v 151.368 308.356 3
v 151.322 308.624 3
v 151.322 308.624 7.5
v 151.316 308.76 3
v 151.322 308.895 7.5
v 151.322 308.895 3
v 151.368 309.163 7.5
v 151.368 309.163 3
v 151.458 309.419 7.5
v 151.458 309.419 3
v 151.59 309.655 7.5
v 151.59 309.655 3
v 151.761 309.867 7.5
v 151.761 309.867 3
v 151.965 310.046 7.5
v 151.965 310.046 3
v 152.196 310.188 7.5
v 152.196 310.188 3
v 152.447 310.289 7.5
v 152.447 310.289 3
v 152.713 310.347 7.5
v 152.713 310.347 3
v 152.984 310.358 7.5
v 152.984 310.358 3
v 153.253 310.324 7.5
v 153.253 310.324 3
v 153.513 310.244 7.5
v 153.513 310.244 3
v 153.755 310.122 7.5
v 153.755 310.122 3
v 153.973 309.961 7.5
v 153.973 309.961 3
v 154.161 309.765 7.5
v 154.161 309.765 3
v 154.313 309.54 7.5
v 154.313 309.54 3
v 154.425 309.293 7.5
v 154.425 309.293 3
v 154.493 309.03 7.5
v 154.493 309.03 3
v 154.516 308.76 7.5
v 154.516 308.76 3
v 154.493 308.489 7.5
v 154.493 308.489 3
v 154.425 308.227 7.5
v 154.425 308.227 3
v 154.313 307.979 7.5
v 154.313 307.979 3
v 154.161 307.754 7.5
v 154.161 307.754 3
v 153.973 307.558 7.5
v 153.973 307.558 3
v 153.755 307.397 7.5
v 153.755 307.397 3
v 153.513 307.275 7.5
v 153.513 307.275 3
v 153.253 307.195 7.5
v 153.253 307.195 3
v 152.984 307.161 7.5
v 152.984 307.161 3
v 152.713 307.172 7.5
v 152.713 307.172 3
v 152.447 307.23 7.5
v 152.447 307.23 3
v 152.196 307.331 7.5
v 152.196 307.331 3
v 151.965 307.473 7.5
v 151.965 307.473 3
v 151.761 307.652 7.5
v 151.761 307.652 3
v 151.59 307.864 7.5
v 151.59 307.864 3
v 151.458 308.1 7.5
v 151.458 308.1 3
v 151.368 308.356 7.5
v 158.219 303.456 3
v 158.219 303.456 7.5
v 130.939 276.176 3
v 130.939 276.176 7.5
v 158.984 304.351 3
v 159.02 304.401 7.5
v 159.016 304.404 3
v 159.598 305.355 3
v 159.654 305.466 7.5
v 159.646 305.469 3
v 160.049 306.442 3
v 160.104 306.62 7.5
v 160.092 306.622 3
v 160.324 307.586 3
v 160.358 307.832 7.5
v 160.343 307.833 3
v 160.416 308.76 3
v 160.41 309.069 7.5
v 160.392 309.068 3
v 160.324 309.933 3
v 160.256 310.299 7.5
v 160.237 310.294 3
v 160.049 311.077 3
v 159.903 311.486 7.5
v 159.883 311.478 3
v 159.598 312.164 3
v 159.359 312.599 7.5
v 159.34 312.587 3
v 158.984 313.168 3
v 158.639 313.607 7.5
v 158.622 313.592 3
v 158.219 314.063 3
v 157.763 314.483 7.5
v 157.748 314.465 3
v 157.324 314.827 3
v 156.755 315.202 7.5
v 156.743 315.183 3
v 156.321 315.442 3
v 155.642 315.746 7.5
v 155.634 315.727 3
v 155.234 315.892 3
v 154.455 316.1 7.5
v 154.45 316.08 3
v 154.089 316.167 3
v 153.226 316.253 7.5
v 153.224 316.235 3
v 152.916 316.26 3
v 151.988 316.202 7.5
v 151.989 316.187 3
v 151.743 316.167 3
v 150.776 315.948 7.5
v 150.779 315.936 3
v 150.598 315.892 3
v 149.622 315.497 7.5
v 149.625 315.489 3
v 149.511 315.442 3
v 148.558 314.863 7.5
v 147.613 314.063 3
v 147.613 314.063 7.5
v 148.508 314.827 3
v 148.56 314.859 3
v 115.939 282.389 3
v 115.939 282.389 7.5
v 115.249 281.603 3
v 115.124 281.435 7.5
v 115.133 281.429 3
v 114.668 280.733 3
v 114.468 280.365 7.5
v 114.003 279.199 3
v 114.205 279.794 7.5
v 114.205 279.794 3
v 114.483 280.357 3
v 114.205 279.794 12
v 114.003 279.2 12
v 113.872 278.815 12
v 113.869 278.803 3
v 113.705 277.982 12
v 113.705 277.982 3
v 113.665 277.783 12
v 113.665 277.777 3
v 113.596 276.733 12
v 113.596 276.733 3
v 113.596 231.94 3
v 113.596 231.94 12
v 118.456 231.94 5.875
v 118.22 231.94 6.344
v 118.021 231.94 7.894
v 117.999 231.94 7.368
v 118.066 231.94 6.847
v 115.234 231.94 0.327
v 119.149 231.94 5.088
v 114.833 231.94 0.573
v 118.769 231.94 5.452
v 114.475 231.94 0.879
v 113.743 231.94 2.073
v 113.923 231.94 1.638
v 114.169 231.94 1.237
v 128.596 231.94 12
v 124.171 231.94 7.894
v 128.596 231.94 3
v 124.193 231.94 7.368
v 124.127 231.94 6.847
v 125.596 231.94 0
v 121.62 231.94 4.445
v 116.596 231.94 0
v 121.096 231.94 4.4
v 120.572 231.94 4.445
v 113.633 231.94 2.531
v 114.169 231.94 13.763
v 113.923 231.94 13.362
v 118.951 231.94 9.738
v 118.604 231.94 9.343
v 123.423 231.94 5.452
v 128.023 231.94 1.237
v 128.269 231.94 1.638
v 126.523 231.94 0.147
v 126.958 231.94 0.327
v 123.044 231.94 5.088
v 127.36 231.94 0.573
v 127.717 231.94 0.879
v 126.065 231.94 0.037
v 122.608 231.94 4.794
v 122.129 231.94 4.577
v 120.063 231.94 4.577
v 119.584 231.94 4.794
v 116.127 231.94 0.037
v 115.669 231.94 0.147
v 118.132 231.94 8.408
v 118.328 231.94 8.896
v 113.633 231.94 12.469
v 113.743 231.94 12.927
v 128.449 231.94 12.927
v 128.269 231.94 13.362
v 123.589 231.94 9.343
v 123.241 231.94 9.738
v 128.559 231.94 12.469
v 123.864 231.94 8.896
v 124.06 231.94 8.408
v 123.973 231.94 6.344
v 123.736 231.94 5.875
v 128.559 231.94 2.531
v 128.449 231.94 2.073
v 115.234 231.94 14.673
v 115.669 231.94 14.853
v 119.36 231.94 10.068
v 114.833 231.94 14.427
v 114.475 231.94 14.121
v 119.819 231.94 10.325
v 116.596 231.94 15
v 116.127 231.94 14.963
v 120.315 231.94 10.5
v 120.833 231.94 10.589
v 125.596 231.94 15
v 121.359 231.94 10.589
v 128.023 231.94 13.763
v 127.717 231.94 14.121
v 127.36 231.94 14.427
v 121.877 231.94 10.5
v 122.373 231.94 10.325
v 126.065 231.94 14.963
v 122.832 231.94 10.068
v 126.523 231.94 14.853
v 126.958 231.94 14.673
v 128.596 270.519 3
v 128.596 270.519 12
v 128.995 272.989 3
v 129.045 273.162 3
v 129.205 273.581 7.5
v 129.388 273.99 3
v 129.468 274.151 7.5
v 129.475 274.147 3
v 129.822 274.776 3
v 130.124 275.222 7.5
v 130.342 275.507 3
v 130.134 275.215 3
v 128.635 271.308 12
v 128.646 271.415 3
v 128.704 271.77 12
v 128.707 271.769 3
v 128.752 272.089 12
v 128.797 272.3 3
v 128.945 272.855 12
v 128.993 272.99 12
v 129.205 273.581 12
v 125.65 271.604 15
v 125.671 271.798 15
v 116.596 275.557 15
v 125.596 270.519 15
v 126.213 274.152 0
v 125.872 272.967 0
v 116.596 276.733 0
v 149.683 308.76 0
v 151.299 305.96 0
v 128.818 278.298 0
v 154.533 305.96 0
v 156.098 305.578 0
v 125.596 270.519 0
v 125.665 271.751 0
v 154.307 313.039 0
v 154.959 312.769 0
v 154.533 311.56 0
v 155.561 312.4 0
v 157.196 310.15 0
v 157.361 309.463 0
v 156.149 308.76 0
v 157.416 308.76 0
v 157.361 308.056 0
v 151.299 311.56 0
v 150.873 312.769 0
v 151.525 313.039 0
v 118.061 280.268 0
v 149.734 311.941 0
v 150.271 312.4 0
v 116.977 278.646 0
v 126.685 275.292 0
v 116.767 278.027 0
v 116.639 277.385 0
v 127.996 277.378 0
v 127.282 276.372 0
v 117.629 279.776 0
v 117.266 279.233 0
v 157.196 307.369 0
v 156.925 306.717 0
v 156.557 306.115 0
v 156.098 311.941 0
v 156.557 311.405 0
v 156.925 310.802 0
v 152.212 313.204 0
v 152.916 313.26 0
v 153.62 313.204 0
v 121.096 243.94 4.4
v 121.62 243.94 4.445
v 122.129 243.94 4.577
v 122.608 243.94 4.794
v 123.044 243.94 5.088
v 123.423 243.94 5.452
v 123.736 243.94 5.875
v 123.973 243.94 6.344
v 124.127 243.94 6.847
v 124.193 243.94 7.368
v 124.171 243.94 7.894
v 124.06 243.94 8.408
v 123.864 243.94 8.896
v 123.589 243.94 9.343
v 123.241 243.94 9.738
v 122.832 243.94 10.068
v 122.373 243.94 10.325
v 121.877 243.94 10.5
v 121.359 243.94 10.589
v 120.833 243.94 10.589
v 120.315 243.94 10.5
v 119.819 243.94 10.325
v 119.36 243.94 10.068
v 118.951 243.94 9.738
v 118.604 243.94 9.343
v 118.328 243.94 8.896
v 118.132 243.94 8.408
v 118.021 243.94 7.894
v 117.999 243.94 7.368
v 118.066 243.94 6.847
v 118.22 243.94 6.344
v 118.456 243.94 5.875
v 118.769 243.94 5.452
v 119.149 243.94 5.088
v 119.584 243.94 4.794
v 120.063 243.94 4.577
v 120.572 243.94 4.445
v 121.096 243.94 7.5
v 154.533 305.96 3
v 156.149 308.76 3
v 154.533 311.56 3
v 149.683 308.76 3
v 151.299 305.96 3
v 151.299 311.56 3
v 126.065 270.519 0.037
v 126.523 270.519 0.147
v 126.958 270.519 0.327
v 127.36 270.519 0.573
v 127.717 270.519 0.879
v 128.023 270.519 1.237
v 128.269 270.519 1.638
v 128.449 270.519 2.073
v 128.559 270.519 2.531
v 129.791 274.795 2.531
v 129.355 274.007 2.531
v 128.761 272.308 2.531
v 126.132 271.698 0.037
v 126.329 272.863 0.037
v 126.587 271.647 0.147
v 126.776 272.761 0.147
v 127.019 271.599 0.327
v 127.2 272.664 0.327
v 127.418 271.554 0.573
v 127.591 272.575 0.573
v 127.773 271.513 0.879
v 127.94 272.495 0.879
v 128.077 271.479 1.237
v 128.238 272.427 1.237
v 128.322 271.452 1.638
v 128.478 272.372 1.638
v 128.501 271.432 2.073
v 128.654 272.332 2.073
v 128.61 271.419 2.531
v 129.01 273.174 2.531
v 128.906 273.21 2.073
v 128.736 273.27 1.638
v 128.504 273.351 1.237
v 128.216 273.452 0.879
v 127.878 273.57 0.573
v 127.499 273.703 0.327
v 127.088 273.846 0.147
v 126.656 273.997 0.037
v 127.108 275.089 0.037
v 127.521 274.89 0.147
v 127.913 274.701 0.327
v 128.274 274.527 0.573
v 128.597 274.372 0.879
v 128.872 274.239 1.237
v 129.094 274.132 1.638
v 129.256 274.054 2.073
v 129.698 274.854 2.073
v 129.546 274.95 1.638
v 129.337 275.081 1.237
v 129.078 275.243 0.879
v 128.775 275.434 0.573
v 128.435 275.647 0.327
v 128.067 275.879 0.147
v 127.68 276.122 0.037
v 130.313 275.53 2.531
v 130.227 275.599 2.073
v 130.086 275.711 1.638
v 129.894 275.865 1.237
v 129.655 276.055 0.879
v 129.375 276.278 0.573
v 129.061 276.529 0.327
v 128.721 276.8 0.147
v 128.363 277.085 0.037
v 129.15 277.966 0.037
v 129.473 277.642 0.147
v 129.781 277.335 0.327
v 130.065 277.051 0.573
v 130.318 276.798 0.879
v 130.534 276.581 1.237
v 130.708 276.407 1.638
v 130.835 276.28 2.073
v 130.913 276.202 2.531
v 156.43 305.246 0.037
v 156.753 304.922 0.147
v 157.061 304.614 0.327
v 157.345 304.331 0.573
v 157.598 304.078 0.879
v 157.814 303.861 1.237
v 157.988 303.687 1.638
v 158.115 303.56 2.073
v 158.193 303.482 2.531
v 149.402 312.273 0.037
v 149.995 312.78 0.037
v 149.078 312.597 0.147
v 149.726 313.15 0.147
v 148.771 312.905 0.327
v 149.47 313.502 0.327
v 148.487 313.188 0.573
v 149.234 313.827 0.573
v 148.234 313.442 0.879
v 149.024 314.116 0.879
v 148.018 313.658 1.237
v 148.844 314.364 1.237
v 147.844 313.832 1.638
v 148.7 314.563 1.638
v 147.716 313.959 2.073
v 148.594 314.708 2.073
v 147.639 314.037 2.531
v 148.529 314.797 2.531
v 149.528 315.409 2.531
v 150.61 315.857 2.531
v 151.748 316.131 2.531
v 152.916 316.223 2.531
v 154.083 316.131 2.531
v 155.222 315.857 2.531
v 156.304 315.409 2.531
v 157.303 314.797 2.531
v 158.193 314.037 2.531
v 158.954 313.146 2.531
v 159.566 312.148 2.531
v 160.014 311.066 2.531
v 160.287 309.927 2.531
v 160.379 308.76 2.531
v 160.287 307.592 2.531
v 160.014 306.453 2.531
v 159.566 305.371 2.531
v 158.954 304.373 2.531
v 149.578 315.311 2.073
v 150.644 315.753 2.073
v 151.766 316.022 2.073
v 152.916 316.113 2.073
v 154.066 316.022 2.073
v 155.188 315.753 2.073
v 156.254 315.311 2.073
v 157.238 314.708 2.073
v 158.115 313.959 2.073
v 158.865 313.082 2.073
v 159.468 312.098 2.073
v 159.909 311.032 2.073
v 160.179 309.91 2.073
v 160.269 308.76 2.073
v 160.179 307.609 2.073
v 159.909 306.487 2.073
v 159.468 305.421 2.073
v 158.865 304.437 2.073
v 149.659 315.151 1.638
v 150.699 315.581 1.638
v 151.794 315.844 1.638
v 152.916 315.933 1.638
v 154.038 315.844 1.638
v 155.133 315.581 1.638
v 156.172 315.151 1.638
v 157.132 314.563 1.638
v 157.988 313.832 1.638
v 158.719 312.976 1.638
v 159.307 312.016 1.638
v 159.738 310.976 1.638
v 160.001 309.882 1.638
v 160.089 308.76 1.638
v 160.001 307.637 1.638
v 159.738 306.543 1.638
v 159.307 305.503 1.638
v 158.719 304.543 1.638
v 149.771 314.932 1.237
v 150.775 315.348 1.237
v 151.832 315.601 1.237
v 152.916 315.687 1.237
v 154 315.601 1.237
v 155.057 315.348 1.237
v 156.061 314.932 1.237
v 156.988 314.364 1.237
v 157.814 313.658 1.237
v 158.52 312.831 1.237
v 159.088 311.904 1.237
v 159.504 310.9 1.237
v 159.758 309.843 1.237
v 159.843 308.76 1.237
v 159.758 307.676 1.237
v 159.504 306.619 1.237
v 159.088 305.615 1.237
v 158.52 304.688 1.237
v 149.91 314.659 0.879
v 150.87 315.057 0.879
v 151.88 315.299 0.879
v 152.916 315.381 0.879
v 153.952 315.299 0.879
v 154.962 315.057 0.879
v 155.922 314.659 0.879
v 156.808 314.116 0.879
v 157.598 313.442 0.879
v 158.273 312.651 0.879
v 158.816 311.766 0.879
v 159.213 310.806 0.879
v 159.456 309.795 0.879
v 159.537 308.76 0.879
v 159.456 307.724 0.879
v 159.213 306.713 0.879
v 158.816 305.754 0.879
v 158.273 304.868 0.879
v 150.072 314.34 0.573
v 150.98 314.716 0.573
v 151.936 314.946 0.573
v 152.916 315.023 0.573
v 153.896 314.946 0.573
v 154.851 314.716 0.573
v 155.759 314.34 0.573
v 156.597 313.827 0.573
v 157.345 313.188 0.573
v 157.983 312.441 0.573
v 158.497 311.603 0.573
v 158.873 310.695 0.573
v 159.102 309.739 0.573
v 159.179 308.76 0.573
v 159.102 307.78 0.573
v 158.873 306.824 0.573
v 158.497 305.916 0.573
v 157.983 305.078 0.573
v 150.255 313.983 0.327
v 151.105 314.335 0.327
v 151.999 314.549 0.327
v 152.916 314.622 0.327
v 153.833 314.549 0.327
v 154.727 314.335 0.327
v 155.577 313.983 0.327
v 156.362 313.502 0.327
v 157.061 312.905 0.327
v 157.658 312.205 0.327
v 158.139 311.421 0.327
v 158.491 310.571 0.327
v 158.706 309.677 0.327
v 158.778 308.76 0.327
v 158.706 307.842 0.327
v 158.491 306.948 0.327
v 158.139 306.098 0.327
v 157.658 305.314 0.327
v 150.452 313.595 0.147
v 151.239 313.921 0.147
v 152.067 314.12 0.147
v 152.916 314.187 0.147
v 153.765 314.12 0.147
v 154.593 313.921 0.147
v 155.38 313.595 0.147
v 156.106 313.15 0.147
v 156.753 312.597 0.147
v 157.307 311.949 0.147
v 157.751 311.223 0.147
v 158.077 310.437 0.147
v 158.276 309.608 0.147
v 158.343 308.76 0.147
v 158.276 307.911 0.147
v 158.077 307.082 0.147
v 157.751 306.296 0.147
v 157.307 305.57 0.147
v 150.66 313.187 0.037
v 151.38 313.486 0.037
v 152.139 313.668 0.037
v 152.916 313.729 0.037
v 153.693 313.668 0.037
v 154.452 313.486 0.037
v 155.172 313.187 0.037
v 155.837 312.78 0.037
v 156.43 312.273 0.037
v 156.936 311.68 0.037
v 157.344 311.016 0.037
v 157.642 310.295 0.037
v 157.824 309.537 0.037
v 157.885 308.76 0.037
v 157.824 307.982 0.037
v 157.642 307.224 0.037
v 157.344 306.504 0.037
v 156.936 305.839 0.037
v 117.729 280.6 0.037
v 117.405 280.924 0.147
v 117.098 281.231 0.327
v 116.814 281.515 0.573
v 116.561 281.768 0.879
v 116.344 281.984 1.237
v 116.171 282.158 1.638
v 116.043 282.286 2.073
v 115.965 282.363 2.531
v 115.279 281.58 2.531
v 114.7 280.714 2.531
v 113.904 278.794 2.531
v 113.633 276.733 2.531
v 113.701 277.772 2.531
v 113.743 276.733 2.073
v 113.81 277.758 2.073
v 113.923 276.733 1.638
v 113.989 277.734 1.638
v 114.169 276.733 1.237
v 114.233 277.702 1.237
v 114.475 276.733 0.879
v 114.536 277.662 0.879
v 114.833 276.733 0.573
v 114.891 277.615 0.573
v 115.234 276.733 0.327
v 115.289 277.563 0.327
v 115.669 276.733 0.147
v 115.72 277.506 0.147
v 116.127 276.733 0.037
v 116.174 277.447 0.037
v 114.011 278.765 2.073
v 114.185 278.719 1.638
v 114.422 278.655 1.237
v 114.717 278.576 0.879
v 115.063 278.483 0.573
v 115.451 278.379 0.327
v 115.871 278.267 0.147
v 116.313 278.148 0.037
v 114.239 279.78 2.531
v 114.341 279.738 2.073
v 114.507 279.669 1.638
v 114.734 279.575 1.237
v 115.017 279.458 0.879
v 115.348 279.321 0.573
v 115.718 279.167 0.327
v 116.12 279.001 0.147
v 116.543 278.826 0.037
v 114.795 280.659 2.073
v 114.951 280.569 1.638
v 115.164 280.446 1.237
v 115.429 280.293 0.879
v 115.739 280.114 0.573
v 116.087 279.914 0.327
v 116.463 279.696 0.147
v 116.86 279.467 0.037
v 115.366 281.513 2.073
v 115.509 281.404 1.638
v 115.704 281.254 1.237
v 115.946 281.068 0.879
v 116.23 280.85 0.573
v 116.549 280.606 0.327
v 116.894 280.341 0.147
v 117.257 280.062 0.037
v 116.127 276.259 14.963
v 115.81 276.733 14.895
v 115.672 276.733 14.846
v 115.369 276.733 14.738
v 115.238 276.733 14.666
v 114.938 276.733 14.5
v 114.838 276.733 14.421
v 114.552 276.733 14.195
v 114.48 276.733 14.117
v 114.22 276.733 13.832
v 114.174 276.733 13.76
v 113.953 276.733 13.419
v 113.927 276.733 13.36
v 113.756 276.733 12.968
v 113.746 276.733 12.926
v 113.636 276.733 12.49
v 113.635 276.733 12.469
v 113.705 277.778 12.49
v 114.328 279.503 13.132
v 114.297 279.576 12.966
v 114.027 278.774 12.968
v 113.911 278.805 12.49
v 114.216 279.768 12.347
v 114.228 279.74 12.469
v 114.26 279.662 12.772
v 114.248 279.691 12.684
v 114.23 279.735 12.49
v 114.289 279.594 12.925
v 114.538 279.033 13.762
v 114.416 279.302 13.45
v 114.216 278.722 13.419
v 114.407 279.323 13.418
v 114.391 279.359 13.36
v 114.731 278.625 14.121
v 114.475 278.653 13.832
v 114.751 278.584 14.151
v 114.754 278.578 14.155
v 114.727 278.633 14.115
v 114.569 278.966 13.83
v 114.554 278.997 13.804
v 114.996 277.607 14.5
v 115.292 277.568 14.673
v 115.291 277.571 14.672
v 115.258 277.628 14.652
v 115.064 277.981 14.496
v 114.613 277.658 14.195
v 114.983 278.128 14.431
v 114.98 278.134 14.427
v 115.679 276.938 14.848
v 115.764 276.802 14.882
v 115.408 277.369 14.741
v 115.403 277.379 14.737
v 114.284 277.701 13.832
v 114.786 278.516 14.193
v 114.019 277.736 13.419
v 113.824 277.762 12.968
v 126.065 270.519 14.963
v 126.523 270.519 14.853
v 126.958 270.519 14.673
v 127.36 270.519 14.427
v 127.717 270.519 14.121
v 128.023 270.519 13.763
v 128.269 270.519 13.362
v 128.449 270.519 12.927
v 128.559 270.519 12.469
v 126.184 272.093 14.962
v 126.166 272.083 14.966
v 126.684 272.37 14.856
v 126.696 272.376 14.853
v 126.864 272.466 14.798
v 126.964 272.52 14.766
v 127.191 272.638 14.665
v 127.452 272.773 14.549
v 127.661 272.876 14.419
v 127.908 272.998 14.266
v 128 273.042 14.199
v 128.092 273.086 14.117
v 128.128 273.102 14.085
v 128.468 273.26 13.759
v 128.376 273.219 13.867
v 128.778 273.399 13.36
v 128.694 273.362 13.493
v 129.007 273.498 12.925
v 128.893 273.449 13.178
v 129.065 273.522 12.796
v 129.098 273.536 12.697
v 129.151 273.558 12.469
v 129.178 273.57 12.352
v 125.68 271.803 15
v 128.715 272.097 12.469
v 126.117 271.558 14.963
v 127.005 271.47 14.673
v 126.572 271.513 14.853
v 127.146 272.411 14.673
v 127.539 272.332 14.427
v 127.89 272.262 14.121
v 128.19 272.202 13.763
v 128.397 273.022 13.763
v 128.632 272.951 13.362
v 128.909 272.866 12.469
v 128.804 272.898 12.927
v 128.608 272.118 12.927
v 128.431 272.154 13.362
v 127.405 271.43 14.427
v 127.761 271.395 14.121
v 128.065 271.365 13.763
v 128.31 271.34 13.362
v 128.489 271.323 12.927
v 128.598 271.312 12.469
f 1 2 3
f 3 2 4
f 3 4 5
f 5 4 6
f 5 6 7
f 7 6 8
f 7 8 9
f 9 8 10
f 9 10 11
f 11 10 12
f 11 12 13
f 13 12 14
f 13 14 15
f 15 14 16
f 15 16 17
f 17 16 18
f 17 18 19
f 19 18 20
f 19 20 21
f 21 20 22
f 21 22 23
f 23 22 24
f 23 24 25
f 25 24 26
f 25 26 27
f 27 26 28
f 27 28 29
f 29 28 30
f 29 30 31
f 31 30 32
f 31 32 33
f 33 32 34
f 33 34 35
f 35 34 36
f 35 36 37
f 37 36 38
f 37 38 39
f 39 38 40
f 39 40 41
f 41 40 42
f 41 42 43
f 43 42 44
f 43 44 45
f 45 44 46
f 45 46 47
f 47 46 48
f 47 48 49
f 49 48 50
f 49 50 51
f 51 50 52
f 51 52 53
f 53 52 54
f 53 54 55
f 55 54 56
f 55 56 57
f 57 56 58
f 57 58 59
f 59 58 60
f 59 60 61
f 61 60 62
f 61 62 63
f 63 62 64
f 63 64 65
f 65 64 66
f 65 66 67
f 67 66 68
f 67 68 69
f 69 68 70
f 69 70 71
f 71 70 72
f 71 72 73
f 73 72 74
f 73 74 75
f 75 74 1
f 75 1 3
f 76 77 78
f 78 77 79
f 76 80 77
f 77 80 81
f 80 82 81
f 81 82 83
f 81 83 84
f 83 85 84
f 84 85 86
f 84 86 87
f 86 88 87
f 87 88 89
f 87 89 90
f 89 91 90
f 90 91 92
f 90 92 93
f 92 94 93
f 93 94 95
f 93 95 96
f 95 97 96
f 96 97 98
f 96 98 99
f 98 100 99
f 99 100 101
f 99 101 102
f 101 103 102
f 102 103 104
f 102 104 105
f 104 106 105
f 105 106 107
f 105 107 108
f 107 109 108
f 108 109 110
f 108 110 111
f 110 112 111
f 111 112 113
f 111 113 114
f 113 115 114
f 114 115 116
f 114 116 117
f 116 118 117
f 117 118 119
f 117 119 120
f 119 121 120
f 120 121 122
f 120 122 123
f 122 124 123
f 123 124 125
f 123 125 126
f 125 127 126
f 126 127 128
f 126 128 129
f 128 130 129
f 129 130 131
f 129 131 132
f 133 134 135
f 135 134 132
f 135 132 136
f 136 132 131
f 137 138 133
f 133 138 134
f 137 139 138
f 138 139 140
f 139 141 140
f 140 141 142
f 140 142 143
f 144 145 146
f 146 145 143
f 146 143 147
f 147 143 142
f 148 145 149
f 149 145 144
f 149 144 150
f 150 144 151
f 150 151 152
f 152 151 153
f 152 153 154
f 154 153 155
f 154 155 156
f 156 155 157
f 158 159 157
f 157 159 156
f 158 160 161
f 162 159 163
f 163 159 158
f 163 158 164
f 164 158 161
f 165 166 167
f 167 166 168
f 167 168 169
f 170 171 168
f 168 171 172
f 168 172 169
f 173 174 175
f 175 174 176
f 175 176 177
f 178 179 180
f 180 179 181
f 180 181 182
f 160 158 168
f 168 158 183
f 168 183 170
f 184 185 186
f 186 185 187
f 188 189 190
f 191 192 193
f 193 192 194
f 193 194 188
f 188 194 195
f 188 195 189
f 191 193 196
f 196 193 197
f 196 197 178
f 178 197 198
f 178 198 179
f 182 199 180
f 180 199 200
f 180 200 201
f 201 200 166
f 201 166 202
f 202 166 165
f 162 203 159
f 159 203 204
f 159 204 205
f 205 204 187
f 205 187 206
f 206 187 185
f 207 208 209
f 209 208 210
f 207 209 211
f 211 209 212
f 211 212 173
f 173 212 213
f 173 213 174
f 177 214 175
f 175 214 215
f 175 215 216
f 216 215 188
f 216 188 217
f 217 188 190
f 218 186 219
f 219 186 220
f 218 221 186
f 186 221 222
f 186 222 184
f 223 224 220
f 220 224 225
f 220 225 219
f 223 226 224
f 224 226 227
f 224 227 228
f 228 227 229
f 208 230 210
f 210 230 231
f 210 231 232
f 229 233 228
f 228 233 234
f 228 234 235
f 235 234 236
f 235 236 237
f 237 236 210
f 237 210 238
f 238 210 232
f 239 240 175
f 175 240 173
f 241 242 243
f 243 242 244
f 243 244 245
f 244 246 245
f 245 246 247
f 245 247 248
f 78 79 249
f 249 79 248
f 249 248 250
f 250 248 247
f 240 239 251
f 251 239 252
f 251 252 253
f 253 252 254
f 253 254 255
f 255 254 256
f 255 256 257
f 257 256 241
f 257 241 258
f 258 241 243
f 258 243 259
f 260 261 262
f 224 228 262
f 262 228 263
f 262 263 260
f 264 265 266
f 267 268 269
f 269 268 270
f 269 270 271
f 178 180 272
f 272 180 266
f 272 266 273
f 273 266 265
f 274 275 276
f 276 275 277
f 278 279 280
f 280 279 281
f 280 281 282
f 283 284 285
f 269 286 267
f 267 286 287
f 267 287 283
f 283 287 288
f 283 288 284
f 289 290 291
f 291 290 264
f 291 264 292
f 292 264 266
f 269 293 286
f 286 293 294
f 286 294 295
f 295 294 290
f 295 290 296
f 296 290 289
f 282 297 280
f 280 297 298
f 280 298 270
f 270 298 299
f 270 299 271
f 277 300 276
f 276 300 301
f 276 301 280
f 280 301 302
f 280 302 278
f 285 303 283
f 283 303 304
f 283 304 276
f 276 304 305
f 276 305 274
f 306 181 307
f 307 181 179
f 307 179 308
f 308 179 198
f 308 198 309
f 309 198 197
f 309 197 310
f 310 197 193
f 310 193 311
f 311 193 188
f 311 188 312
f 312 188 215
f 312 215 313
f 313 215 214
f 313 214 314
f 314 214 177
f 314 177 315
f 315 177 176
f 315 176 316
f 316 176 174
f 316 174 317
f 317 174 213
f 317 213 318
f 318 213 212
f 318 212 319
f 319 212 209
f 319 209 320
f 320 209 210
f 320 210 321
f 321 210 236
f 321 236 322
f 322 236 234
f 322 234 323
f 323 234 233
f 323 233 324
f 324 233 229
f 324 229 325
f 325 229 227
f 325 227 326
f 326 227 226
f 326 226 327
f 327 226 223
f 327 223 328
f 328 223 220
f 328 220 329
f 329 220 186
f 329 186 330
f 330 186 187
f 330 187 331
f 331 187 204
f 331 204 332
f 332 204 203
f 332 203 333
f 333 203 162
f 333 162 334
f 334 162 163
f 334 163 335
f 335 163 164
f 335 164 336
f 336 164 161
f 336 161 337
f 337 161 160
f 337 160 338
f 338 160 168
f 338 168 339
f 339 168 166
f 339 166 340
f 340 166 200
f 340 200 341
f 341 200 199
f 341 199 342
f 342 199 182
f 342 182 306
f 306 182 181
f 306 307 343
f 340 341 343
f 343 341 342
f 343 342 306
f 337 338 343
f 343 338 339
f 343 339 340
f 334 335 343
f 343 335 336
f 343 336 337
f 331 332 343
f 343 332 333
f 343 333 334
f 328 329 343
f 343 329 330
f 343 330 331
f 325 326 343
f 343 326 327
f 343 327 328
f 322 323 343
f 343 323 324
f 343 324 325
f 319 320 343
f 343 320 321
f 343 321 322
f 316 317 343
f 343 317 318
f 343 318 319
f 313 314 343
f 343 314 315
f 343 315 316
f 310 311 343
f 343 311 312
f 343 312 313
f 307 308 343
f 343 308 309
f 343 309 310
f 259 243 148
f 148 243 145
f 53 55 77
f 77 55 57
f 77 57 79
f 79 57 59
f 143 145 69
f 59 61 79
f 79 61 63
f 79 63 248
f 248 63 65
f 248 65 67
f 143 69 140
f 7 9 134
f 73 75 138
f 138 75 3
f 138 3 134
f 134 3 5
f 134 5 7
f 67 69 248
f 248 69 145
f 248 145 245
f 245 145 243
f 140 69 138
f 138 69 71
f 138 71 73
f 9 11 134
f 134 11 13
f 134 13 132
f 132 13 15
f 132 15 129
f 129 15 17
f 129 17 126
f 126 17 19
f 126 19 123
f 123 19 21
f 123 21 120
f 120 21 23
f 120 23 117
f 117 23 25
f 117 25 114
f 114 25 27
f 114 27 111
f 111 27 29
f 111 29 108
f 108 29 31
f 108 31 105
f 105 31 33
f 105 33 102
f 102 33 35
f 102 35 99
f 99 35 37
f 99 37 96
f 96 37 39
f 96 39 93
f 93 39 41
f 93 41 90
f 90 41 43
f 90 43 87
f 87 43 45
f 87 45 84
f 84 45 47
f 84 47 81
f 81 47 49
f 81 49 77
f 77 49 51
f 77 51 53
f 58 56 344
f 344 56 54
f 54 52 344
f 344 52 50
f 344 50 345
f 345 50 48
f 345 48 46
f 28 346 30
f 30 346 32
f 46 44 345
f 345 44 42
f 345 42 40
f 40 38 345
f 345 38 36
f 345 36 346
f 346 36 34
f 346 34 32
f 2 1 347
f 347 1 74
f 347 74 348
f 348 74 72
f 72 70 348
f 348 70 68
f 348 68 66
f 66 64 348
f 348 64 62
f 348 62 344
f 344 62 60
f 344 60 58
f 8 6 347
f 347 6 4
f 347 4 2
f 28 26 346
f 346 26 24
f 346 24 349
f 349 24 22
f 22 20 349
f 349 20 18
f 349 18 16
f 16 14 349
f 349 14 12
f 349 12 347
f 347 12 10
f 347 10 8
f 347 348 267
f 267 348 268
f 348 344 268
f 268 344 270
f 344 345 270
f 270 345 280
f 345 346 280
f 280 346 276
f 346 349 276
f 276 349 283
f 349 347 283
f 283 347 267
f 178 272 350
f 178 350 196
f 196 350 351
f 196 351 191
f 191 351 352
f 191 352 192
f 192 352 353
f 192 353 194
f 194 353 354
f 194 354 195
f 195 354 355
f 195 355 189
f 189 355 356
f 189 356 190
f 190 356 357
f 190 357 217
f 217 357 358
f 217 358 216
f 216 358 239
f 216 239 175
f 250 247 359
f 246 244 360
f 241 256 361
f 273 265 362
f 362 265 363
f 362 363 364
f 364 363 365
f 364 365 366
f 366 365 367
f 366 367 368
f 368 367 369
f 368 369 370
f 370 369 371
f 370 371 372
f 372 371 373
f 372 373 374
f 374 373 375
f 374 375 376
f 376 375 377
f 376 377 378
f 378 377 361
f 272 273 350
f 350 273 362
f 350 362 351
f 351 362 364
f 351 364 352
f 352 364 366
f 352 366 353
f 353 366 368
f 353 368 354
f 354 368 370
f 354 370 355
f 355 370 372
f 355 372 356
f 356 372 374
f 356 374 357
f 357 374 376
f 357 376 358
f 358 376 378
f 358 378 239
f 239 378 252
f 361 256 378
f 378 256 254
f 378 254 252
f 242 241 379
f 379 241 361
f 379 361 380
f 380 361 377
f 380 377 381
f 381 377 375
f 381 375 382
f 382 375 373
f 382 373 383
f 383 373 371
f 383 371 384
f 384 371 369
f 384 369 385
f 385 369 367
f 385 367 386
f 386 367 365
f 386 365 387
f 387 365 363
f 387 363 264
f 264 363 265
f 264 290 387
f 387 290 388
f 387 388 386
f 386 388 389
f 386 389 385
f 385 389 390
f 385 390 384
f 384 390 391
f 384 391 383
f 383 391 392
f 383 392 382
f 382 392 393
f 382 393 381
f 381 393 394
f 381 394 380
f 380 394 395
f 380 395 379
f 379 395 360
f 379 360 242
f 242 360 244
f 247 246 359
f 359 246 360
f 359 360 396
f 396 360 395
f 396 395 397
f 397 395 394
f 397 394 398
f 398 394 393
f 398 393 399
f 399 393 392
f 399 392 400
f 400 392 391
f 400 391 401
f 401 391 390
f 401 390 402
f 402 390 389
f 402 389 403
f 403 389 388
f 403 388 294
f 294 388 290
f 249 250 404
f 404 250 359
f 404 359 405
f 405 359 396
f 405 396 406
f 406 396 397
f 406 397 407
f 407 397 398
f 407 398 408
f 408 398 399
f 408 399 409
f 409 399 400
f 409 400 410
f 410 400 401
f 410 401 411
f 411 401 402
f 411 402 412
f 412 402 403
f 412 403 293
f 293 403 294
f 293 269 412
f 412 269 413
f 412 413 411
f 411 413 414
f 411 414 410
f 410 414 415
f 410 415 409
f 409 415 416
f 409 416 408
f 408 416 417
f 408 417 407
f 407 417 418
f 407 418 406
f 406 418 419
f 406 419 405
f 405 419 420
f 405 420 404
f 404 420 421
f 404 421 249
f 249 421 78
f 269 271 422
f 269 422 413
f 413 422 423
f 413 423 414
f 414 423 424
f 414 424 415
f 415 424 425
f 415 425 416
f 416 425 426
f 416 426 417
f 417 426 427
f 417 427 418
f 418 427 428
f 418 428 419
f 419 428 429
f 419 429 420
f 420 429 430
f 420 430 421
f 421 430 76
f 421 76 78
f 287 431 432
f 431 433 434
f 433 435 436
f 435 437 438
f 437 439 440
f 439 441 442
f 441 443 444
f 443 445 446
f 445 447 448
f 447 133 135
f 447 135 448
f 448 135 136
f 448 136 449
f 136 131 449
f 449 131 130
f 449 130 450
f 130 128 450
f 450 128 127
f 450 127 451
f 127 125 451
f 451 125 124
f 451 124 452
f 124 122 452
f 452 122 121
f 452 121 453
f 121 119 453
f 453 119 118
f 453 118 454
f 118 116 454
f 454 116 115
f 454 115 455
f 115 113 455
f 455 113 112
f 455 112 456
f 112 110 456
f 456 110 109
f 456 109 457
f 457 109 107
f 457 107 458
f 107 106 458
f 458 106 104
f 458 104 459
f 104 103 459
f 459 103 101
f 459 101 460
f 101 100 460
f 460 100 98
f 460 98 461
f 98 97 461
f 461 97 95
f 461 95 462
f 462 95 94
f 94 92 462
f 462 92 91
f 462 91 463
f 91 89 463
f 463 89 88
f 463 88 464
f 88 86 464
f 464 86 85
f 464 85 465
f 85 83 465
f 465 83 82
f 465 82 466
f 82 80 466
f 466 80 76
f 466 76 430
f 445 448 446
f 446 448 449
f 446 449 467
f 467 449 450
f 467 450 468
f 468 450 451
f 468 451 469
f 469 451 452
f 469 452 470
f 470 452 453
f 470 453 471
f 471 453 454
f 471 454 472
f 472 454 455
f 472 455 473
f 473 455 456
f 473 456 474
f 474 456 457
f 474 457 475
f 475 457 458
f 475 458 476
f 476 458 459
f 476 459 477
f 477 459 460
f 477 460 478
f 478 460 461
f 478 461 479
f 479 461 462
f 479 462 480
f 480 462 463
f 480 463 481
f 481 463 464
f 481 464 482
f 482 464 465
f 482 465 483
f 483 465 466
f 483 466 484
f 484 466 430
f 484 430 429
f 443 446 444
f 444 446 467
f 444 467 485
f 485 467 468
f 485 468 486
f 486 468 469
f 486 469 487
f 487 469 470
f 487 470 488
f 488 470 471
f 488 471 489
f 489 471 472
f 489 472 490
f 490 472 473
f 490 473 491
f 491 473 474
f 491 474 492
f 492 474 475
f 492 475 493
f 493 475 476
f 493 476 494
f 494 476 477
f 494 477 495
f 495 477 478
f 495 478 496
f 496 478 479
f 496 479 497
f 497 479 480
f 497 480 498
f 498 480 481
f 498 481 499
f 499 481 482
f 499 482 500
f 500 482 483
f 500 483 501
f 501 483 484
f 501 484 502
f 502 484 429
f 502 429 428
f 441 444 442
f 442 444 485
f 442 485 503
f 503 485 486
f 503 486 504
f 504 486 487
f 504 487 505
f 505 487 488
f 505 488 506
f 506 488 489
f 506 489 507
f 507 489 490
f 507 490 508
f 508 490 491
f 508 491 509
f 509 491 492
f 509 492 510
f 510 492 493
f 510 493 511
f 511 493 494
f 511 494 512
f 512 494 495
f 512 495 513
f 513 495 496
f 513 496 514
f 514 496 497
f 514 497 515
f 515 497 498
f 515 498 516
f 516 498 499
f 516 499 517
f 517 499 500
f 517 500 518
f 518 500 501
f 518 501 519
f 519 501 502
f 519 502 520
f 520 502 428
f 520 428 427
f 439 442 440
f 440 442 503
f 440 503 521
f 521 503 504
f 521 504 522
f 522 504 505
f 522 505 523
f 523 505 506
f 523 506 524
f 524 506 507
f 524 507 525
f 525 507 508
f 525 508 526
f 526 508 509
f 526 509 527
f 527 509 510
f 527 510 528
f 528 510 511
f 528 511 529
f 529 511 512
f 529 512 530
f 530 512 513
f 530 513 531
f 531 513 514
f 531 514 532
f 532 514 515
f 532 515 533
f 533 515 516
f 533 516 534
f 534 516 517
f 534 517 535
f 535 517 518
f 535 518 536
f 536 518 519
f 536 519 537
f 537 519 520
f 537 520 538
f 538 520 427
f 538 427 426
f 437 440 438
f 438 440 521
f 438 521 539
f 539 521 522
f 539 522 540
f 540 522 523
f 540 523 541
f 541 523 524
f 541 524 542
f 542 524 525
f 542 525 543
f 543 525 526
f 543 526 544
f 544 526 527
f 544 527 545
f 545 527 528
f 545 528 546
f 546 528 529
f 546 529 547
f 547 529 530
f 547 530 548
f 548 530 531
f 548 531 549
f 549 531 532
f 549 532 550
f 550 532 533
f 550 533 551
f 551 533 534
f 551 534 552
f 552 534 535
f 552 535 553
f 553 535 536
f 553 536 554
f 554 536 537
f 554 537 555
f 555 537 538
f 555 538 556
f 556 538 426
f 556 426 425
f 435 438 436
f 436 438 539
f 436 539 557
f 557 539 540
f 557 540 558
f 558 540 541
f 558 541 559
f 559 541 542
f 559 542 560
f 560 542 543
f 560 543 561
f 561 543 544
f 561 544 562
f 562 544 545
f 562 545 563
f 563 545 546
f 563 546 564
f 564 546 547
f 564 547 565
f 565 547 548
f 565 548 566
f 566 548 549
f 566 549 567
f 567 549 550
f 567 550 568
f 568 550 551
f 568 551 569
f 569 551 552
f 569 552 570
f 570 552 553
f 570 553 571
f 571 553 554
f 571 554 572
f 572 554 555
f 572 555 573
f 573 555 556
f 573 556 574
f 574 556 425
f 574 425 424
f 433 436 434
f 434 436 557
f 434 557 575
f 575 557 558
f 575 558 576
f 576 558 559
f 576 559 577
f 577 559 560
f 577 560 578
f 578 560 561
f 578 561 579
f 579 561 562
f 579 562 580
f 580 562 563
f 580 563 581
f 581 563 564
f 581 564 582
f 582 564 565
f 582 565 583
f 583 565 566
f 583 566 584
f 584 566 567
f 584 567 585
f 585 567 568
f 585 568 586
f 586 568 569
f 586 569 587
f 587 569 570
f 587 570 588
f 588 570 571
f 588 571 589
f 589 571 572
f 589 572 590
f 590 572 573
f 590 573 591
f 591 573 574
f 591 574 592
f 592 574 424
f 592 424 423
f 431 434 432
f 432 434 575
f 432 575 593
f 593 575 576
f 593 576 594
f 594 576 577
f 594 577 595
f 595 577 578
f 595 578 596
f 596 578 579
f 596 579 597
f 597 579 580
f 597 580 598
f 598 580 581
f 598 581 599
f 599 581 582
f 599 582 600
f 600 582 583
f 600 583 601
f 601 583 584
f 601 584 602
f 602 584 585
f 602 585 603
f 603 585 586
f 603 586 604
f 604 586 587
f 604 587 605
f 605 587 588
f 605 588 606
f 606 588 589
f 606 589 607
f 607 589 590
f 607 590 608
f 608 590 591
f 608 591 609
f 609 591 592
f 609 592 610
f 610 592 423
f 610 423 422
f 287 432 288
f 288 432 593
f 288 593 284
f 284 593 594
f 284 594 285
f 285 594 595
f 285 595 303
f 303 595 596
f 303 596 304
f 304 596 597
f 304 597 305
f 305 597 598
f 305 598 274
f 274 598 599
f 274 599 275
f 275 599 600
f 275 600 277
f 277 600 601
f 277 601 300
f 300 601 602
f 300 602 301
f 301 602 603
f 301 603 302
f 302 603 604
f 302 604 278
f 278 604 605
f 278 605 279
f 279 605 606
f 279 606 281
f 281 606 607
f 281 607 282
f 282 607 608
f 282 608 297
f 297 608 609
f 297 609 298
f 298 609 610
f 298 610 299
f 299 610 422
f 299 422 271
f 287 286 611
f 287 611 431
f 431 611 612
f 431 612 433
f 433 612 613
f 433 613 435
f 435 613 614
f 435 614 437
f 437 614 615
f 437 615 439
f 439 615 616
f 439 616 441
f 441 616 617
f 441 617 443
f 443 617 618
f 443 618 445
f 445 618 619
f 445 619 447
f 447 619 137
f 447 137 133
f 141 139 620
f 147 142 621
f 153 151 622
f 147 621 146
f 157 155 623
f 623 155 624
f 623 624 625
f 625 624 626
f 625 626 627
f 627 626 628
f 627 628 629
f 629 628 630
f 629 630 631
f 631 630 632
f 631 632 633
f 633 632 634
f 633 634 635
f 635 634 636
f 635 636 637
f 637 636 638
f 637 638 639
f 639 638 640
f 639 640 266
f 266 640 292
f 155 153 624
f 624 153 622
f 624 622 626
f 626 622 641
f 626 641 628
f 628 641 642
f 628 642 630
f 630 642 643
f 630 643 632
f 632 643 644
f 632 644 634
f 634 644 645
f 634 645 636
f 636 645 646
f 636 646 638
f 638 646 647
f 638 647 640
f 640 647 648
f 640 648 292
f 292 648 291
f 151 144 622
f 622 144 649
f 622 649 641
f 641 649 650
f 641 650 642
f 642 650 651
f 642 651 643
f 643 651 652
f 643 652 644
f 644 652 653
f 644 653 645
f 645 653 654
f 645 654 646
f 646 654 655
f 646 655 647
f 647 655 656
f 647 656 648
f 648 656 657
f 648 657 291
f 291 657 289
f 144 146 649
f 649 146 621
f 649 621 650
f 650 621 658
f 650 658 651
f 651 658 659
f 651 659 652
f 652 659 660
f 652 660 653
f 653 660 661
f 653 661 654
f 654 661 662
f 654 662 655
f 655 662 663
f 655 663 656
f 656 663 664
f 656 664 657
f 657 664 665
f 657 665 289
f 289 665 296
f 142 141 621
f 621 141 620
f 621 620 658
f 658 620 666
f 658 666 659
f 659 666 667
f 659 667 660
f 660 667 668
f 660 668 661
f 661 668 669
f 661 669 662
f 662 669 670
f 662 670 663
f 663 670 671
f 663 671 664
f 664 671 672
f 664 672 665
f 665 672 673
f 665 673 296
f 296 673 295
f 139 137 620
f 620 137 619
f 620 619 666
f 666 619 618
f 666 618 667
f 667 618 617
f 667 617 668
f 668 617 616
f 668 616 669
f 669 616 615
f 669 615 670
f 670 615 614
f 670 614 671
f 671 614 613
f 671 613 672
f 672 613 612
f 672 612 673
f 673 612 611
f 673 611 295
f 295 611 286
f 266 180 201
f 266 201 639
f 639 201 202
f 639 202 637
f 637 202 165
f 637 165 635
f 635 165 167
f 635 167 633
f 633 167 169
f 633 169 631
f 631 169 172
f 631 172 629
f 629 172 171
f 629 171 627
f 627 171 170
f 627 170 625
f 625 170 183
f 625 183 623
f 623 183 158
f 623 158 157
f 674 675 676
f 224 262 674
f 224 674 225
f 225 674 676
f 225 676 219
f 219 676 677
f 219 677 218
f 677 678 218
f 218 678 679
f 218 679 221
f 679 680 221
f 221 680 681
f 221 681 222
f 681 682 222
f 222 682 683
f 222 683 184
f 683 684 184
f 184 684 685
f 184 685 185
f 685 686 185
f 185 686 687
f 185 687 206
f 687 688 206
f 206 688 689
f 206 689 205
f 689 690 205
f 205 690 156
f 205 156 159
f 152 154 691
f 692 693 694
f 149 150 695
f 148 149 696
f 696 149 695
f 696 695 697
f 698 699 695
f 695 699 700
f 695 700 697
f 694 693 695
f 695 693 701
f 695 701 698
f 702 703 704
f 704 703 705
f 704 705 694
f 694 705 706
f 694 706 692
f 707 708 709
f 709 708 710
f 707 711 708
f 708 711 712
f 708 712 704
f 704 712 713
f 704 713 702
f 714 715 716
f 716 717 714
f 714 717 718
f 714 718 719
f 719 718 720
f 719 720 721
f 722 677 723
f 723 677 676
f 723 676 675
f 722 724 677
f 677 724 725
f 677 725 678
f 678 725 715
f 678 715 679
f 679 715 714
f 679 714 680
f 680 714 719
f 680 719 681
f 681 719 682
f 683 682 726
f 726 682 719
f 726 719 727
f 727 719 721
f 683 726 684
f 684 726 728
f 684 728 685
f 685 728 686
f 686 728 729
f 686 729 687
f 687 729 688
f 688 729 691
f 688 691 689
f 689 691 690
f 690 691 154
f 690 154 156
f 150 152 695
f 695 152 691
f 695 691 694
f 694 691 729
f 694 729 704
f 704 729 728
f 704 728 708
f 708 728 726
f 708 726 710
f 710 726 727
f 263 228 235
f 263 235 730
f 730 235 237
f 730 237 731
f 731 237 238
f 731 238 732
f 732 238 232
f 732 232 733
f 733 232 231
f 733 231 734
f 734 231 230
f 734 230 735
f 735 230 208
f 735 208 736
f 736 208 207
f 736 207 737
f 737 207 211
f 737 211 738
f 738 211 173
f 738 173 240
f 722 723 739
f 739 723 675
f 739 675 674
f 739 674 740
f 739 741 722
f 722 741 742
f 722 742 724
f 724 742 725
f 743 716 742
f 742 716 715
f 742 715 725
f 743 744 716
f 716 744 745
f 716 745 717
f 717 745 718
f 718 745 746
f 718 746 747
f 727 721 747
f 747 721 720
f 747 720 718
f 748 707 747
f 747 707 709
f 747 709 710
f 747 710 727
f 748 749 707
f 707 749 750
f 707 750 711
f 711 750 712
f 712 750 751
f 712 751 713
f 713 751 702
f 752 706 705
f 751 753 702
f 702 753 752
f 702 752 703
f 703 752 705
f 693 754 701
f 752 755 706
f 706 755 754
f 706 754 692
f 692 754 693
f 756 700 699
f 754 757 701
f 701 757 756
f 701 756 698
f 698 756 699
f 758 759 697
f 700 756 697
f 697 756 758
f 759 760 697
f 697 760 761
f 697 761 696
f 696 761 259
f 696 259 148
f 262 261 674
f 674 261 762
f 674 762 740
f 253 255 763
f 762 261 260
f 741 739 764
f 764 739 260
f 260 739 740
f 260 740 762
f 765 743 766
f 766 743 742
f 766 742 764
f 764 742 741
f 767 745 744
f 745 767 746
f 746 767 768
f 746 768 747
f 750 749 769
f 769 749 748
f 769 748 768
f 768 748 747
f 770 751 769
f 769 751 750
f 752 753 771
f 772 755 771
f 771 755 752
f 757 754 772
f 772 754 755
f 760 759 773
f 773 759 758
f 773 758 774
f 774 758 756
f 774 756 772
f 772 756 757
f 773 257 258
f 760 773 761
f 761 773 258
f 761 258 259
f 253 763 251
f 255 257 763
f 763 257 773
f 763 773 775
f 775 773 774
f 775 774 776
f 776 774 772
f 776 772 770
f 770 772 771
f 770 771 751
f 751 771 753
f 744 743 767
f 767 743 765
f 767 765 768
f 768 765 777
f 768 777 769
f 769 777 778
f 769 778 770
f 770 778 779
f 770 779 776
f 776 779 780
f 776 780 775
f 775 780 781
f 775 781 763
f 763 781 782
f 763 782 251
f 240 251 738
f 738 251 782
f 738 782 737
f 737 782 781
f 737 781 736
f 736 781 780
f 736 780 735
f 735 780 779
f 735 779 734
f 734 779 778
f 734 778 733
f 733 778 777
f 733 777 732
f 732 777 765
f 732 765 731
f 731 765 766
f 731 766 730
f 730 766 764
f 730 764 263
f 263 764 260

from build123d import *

# Parameters (mm, degrees)
EXTRUDE_1_DEPTH     = 15
SKETCH_2_R          = 3.1
CUT_EXTRUDE_1_DEPTH = 12
CUT_EXTRUDE_START   = -7.5
CUT_EXTRUDE_2_DEPTH = 7.5
SKETCH_4_R          = 1.6
CUT_EXTRUDE_3_DEPTH = 8
CUT_EXTRUDE_4_DEPTH = 3
FILLET_1_R          = 3


with BuildPart() as part:
    # Model → 凸台-拉伸1 (new body)
    with BuildSketch(Plane.XY):
        with BuildLine():
            Line((113.596149123, 231.939716908), (128.596149123, 231.939716908))
            Line((128.596149123, 231.939716908), (128.596149123, 270.519406691))
            ThreePointArc((128.596149123, 270.519406691), (129.205112863, 273.58087415), (130.939294874, 276.17626094))
            Line((130.939294874, 276.17626094), (158.219255135, 303.456221202))
            ThreePointArc((158.219255135, 303.456221202), (158.219255135, 314.06282292), (147.612653418, 314.06282292))
            Line((147.612653418, 314.06282292), (115.939294874, 282.389464376))
            ThreePointArc((115.939294874, 282.389464376), (114.205112863, 279.794077585), (113.596149123, 276.732610126))
            Line((113.596149123, 276.732610126), (113.596149123, 231.939716908))
        make_face()
    extrude(amount=EXTRUDE_1_DEPTH)

    # 草图2 → 切除-拉伸1 (cut)
    with BuildSketch(Plane.XZ.offset(-231.939716908)):
        with Locations(Location((121.096149123, 7.5, 0), (0, 0, 270))):
            Circle(SKETCH_2_R)
    extrude(amount=-CUT_EXTRUDE_1_DEPTH, mode=Mode.SUBTRACT)

    # 草图3 → 切除-拉伸2 (cut)
    with BuildSketch(Plane.XY.offset(15).offset(CUT_EXTRUDE_START)):
        with BuildLine():
            Line((114.205112863, 279.794077585), (129.205112863, 273.58087415))
            ThreePointArc((129.205112863, 273.58087415), (129.944392225, 274.963968555), (130.939294874, 276.17626094))
            Line((130.939294874, 276.17626094), (158.219255135, 303.456221202))
            ThreePointArc((158.219255135, 303.456221202), (158.219255135, 314.06282292), (147.612653418, 314.06282292))
            Line((147.612653418, 314.06282292), (115.939294874, 282.389464376))
            ThreePointArc((115.939294874, 282.389464376), (114.944392225, 281.17717199), (114.205112863, 279.794077585))
        make_face()
    extrude(amount=CUT_EXTRUDE_2_DEPTH, mode=Mode.SUBTRACT)

    # 草图4 → 切除-拉伸3 (cut)
    with BuildSketch(Plane.XY.offset(7.5)):
        with Locations((152.915954276, 308.759522061)):
            Circle(SKETCH_4_R)
    extrude(amount=-CUT_EXTRUDE_3_DEPTH, mode=Mode.SUBTRACT)

    # 草图5 → 切除-拉伸4 (cut)
    with BuildSketch(Plane(origin=(0, 0, 0), x_dir=(-1, 0, 0), z_dir=(0, 0, -1))):
        Polygon((-149.682792769, 308.759522061), (-151.299373523, 311.559522061), (-154.53253503, 311.559522061), (-156.149115784, 308.759522061), (-154.53253503, 305.959522061), (-151.299373523, 305.959522061), align=None)
    extrude(amount=-CUT_EXTRUDE_4_DEPTH, mode=Mode.SUBTRACT)

    # 圆角1
    # the kernel refuses this fillet: 3 mm, written as the material it takes off along each edge
    with BuildSketch(Plane(origin=(113.596149123, 276.732610126, 0), x_dir=(0, 0, 1), z_dir=(0, -1, 0))) as fillet_1_piece_1:
        with BuildLine():
            CenterArc((FILLET_1_R, -FILLET_1_R), FILLET_1_R, 90, 90)
            Line((0, -FILLET_1_R), (0, 0))
            Line((0, 0), (FILLET_1_R, 0))
        make_face()
    extrude(amount=52.292893219, mode=Mode.SUBTRACT)
    with BuildSketch(Plane(origin=(121.596149123, 276.732610126, 0), x_dir=(-0.7071067811865422, 0.7071067811865529, 0), z_dir=(0.7071067811865529, 0.7071067811865422, 0))) as fillet_1_piece_2:
        with BuildLine():
            CenterArc((8 - FILLET_1_R, FILLET_1_R), FILLET_1_R, 270, 90)
            Line((8, FILLET_1_R), (8, 0))
            Line((8, 0), (8 - FILLET_1_R, 0))
        make_face()
    revolve(axis=Axis((121.596149123, 276.732610126, 0), (0, 0, 1)), revolution_arc=45, mode=Mode.SUBTRACT)
    with BuildSketch(Plane(origin=(147.612653418, 314.06282292, 0), x_dir=(0.7071067811865483, -0.7071067811865468, 0), z_dir=(-0.7071067811865469, -0.7071067811865482, 0))) as fillet_1_piece_3:
        with BuildLine():
            CenterArc((FILLET_1_R, FILLET_1_R), FILLET_1_R, 180, 90)
            Line((0, FILLET_1_R), (0, 0))
            Line((0, 0), (FILLET_1_R, 0))
        make_face()
    extrude(amount=44.792893219, mode=Mode.SUBTRACT)
    with BuildSketch(Plane(origin=(152.915954276, 308.759522061, 0), x_dir=(0.7071067811865419, -0.7071067811865532, 0), z_dir=(-0.7071067811865532, -0.7071067811865419, 0))) as fillet_1_piece_4:
        with BuildLine():
            CenterArc((7.5 - FILLET_1_R, FILLET_1_R), FILLET_1_R, 270, 90)
            Line((7.5, FILLET_1_R), (7.5, 0))
            Line((7.5, 0), (7.5 - FILLET_1_R, 0))
        make_face()
    revolve(axis=Axis((152.915954276, 308.759522061, 0), (0, 0, 1)), revolution_arc=180, mode=Mode.SUBTRACT)
    with BuildSketch(Plane(origin=(130.939294874, 276.17626094, 0), x_dir=(-0.707106781186548, 0.7071067811865471, 0), z_dir=(0.7071067811865471, 0.7071067811865479, 0))) as fillet_1_piece_5:
        with BuildLine():
            CenterArc((FILLET_1_R, FILLET_1_R), FILLET_1_R, 180, 90)
            Line((0, FILLET_1_R), (0, 0))
            Line((0, 0), (FILLET_1_R, 0))
        make_face()
    extrude(amount=38.579689783, mode=Mode.SUBTRACT)
    with BuildSketch(Plane(origin=(136.596149123, 270.519406691, 0), x_dir=(-1, 0, 0), z_dir=(0, -1, 0))) as fillet_1_piece_6:
        with BuildLine():
            CenterArc((8 + FILLET_1_R, -FILLET_1_R), FILLET_1_R, 90, 90)
            Line((8, -FILLET_1_R), (8, 0))
            Line((8, 0), (8 + FILLET_1_R, 0))
        make_face()
    revolve(axis=Axis((136.596149123, 270.519406691, 0), (0, 0, -1)), revolution_arc=45, mode=Mode.SUBTRACT)
    with BuildSketch(Plane(origin=(136.596149123, 270.519406691, 15), x_dir=(-1, 0, 0), z_dir=(0, -1, 0))) as fillet_1_piece_7:
        with BuildLine():
            CenterArc((8 + FILLET_1_R, FILLET_1_R), FILLET_1_R, 180, 90)
            Line((8, FILLET_1_R), (8, 0))
            Line((8, 0), (8 + FILLET_1_R, 0))
        make_face()
    revolve(axis=Axis((136.596149123, 270.519406691, 15), (0, 0, -1)), revolution_arc=76.216141543, mode=Mode.SUBTRACT)
    with BuildSketch(Plane(origin=(128.596149123, 224.439716908, 0), x_dir=(-1, 0, 0), z_dir=(0, 1, 0))) as fillet_1_piece_8:
        with BuildLine():
            CenterArc((FILLET_1_R, FILLET_1_R), FILLET_1_R, 180, 90)
            Line((0, FILLET_1_R), (0, 0))
            Line((0, 0), (FILLET_1_R, 0))
        make_face()
    extrude(amount=46.079689783, mode=Mode.SUBTRACT)
    with BuildSketch(Plane(origin=(128.596149123, 224.439716908, 15), x_dir=(-1, 0, 0), z_dir=(0, 1, 0))) as fillet_1_piece_9:
        with BuildLine():
            CenterArc((FILLET_1_R, -FILLET_1_R), FILLET_1_R, 90, 90)
            Line((0, -FILLET_1_R), (0, 0))
            Line((0, 0), (FILLET_1_R, 0))
        make_face()
    extrude(amount=46.079689783, mode=Mode.SUBTRACT)
    with BuildSketch(Plane(origin=(107.276016369, 282.664203328, 15), x_dir=(-0.38268343236508984, -0.9238795325112866, 0), z_dir=(0.9238795325112867, -0.38268343236508984, 0))) as fillet_1_piece_10:
        with BuildLine():
            CenterArc((FILLET_1_R, FILLET_1_R), FILLET_1_R, 180, 90)
            Line((0, FILLET_1_R), (0, 0))
            Line((0, 0), (FILLET_1_R, 0))
        make_face()
    extrude(amount=31.235883004, mode=Mode.SUBTRACT)
    with BuildSketch(Plane(origin=(113.596149123, 276.732610126, 15), x_dir=(0, 0, -1), z_dir=(0, -1, 0))) as fillet_1_piece_11:
        with BuildLine():
            CenterArc((FILLET_1_R, FILLET_1_R), FILLET_1_R, 180, 90)
            Line((0, FILLET_1_R), (0, 0))
            Line((0, 0), (FILLET_1_R, 0))
        make_face()
    extrude(amount=52.292893219, mode=Mode.SUBTRACT)
    with BuildSketch(Plane(origin=(121.596149123, 276.732610126, 15), x_dir=(-0.23825985719225534, 0.9712014417466266, 0), z_dir=(0.9712014417466266, 0.23825985719225534, 0))) as fillet_1_piece_12:
        with BuildLine():
            CenterArc((8 - FILLET_1_R, -FILLET_1_R), FILLET_1_R, 0, 90)
            Line((8, -FILLET_1_R), (8, 0))
            Line((8, 0), (8 - FILLET_1_R, 0))
        make_face()
    revolve(axis=Axis((121.596149123, 276.732610126, 15), (0, 0, 1)), revolution_arc=76.216141543, mode=Mode.SUBTRACT)


solid = part.part
